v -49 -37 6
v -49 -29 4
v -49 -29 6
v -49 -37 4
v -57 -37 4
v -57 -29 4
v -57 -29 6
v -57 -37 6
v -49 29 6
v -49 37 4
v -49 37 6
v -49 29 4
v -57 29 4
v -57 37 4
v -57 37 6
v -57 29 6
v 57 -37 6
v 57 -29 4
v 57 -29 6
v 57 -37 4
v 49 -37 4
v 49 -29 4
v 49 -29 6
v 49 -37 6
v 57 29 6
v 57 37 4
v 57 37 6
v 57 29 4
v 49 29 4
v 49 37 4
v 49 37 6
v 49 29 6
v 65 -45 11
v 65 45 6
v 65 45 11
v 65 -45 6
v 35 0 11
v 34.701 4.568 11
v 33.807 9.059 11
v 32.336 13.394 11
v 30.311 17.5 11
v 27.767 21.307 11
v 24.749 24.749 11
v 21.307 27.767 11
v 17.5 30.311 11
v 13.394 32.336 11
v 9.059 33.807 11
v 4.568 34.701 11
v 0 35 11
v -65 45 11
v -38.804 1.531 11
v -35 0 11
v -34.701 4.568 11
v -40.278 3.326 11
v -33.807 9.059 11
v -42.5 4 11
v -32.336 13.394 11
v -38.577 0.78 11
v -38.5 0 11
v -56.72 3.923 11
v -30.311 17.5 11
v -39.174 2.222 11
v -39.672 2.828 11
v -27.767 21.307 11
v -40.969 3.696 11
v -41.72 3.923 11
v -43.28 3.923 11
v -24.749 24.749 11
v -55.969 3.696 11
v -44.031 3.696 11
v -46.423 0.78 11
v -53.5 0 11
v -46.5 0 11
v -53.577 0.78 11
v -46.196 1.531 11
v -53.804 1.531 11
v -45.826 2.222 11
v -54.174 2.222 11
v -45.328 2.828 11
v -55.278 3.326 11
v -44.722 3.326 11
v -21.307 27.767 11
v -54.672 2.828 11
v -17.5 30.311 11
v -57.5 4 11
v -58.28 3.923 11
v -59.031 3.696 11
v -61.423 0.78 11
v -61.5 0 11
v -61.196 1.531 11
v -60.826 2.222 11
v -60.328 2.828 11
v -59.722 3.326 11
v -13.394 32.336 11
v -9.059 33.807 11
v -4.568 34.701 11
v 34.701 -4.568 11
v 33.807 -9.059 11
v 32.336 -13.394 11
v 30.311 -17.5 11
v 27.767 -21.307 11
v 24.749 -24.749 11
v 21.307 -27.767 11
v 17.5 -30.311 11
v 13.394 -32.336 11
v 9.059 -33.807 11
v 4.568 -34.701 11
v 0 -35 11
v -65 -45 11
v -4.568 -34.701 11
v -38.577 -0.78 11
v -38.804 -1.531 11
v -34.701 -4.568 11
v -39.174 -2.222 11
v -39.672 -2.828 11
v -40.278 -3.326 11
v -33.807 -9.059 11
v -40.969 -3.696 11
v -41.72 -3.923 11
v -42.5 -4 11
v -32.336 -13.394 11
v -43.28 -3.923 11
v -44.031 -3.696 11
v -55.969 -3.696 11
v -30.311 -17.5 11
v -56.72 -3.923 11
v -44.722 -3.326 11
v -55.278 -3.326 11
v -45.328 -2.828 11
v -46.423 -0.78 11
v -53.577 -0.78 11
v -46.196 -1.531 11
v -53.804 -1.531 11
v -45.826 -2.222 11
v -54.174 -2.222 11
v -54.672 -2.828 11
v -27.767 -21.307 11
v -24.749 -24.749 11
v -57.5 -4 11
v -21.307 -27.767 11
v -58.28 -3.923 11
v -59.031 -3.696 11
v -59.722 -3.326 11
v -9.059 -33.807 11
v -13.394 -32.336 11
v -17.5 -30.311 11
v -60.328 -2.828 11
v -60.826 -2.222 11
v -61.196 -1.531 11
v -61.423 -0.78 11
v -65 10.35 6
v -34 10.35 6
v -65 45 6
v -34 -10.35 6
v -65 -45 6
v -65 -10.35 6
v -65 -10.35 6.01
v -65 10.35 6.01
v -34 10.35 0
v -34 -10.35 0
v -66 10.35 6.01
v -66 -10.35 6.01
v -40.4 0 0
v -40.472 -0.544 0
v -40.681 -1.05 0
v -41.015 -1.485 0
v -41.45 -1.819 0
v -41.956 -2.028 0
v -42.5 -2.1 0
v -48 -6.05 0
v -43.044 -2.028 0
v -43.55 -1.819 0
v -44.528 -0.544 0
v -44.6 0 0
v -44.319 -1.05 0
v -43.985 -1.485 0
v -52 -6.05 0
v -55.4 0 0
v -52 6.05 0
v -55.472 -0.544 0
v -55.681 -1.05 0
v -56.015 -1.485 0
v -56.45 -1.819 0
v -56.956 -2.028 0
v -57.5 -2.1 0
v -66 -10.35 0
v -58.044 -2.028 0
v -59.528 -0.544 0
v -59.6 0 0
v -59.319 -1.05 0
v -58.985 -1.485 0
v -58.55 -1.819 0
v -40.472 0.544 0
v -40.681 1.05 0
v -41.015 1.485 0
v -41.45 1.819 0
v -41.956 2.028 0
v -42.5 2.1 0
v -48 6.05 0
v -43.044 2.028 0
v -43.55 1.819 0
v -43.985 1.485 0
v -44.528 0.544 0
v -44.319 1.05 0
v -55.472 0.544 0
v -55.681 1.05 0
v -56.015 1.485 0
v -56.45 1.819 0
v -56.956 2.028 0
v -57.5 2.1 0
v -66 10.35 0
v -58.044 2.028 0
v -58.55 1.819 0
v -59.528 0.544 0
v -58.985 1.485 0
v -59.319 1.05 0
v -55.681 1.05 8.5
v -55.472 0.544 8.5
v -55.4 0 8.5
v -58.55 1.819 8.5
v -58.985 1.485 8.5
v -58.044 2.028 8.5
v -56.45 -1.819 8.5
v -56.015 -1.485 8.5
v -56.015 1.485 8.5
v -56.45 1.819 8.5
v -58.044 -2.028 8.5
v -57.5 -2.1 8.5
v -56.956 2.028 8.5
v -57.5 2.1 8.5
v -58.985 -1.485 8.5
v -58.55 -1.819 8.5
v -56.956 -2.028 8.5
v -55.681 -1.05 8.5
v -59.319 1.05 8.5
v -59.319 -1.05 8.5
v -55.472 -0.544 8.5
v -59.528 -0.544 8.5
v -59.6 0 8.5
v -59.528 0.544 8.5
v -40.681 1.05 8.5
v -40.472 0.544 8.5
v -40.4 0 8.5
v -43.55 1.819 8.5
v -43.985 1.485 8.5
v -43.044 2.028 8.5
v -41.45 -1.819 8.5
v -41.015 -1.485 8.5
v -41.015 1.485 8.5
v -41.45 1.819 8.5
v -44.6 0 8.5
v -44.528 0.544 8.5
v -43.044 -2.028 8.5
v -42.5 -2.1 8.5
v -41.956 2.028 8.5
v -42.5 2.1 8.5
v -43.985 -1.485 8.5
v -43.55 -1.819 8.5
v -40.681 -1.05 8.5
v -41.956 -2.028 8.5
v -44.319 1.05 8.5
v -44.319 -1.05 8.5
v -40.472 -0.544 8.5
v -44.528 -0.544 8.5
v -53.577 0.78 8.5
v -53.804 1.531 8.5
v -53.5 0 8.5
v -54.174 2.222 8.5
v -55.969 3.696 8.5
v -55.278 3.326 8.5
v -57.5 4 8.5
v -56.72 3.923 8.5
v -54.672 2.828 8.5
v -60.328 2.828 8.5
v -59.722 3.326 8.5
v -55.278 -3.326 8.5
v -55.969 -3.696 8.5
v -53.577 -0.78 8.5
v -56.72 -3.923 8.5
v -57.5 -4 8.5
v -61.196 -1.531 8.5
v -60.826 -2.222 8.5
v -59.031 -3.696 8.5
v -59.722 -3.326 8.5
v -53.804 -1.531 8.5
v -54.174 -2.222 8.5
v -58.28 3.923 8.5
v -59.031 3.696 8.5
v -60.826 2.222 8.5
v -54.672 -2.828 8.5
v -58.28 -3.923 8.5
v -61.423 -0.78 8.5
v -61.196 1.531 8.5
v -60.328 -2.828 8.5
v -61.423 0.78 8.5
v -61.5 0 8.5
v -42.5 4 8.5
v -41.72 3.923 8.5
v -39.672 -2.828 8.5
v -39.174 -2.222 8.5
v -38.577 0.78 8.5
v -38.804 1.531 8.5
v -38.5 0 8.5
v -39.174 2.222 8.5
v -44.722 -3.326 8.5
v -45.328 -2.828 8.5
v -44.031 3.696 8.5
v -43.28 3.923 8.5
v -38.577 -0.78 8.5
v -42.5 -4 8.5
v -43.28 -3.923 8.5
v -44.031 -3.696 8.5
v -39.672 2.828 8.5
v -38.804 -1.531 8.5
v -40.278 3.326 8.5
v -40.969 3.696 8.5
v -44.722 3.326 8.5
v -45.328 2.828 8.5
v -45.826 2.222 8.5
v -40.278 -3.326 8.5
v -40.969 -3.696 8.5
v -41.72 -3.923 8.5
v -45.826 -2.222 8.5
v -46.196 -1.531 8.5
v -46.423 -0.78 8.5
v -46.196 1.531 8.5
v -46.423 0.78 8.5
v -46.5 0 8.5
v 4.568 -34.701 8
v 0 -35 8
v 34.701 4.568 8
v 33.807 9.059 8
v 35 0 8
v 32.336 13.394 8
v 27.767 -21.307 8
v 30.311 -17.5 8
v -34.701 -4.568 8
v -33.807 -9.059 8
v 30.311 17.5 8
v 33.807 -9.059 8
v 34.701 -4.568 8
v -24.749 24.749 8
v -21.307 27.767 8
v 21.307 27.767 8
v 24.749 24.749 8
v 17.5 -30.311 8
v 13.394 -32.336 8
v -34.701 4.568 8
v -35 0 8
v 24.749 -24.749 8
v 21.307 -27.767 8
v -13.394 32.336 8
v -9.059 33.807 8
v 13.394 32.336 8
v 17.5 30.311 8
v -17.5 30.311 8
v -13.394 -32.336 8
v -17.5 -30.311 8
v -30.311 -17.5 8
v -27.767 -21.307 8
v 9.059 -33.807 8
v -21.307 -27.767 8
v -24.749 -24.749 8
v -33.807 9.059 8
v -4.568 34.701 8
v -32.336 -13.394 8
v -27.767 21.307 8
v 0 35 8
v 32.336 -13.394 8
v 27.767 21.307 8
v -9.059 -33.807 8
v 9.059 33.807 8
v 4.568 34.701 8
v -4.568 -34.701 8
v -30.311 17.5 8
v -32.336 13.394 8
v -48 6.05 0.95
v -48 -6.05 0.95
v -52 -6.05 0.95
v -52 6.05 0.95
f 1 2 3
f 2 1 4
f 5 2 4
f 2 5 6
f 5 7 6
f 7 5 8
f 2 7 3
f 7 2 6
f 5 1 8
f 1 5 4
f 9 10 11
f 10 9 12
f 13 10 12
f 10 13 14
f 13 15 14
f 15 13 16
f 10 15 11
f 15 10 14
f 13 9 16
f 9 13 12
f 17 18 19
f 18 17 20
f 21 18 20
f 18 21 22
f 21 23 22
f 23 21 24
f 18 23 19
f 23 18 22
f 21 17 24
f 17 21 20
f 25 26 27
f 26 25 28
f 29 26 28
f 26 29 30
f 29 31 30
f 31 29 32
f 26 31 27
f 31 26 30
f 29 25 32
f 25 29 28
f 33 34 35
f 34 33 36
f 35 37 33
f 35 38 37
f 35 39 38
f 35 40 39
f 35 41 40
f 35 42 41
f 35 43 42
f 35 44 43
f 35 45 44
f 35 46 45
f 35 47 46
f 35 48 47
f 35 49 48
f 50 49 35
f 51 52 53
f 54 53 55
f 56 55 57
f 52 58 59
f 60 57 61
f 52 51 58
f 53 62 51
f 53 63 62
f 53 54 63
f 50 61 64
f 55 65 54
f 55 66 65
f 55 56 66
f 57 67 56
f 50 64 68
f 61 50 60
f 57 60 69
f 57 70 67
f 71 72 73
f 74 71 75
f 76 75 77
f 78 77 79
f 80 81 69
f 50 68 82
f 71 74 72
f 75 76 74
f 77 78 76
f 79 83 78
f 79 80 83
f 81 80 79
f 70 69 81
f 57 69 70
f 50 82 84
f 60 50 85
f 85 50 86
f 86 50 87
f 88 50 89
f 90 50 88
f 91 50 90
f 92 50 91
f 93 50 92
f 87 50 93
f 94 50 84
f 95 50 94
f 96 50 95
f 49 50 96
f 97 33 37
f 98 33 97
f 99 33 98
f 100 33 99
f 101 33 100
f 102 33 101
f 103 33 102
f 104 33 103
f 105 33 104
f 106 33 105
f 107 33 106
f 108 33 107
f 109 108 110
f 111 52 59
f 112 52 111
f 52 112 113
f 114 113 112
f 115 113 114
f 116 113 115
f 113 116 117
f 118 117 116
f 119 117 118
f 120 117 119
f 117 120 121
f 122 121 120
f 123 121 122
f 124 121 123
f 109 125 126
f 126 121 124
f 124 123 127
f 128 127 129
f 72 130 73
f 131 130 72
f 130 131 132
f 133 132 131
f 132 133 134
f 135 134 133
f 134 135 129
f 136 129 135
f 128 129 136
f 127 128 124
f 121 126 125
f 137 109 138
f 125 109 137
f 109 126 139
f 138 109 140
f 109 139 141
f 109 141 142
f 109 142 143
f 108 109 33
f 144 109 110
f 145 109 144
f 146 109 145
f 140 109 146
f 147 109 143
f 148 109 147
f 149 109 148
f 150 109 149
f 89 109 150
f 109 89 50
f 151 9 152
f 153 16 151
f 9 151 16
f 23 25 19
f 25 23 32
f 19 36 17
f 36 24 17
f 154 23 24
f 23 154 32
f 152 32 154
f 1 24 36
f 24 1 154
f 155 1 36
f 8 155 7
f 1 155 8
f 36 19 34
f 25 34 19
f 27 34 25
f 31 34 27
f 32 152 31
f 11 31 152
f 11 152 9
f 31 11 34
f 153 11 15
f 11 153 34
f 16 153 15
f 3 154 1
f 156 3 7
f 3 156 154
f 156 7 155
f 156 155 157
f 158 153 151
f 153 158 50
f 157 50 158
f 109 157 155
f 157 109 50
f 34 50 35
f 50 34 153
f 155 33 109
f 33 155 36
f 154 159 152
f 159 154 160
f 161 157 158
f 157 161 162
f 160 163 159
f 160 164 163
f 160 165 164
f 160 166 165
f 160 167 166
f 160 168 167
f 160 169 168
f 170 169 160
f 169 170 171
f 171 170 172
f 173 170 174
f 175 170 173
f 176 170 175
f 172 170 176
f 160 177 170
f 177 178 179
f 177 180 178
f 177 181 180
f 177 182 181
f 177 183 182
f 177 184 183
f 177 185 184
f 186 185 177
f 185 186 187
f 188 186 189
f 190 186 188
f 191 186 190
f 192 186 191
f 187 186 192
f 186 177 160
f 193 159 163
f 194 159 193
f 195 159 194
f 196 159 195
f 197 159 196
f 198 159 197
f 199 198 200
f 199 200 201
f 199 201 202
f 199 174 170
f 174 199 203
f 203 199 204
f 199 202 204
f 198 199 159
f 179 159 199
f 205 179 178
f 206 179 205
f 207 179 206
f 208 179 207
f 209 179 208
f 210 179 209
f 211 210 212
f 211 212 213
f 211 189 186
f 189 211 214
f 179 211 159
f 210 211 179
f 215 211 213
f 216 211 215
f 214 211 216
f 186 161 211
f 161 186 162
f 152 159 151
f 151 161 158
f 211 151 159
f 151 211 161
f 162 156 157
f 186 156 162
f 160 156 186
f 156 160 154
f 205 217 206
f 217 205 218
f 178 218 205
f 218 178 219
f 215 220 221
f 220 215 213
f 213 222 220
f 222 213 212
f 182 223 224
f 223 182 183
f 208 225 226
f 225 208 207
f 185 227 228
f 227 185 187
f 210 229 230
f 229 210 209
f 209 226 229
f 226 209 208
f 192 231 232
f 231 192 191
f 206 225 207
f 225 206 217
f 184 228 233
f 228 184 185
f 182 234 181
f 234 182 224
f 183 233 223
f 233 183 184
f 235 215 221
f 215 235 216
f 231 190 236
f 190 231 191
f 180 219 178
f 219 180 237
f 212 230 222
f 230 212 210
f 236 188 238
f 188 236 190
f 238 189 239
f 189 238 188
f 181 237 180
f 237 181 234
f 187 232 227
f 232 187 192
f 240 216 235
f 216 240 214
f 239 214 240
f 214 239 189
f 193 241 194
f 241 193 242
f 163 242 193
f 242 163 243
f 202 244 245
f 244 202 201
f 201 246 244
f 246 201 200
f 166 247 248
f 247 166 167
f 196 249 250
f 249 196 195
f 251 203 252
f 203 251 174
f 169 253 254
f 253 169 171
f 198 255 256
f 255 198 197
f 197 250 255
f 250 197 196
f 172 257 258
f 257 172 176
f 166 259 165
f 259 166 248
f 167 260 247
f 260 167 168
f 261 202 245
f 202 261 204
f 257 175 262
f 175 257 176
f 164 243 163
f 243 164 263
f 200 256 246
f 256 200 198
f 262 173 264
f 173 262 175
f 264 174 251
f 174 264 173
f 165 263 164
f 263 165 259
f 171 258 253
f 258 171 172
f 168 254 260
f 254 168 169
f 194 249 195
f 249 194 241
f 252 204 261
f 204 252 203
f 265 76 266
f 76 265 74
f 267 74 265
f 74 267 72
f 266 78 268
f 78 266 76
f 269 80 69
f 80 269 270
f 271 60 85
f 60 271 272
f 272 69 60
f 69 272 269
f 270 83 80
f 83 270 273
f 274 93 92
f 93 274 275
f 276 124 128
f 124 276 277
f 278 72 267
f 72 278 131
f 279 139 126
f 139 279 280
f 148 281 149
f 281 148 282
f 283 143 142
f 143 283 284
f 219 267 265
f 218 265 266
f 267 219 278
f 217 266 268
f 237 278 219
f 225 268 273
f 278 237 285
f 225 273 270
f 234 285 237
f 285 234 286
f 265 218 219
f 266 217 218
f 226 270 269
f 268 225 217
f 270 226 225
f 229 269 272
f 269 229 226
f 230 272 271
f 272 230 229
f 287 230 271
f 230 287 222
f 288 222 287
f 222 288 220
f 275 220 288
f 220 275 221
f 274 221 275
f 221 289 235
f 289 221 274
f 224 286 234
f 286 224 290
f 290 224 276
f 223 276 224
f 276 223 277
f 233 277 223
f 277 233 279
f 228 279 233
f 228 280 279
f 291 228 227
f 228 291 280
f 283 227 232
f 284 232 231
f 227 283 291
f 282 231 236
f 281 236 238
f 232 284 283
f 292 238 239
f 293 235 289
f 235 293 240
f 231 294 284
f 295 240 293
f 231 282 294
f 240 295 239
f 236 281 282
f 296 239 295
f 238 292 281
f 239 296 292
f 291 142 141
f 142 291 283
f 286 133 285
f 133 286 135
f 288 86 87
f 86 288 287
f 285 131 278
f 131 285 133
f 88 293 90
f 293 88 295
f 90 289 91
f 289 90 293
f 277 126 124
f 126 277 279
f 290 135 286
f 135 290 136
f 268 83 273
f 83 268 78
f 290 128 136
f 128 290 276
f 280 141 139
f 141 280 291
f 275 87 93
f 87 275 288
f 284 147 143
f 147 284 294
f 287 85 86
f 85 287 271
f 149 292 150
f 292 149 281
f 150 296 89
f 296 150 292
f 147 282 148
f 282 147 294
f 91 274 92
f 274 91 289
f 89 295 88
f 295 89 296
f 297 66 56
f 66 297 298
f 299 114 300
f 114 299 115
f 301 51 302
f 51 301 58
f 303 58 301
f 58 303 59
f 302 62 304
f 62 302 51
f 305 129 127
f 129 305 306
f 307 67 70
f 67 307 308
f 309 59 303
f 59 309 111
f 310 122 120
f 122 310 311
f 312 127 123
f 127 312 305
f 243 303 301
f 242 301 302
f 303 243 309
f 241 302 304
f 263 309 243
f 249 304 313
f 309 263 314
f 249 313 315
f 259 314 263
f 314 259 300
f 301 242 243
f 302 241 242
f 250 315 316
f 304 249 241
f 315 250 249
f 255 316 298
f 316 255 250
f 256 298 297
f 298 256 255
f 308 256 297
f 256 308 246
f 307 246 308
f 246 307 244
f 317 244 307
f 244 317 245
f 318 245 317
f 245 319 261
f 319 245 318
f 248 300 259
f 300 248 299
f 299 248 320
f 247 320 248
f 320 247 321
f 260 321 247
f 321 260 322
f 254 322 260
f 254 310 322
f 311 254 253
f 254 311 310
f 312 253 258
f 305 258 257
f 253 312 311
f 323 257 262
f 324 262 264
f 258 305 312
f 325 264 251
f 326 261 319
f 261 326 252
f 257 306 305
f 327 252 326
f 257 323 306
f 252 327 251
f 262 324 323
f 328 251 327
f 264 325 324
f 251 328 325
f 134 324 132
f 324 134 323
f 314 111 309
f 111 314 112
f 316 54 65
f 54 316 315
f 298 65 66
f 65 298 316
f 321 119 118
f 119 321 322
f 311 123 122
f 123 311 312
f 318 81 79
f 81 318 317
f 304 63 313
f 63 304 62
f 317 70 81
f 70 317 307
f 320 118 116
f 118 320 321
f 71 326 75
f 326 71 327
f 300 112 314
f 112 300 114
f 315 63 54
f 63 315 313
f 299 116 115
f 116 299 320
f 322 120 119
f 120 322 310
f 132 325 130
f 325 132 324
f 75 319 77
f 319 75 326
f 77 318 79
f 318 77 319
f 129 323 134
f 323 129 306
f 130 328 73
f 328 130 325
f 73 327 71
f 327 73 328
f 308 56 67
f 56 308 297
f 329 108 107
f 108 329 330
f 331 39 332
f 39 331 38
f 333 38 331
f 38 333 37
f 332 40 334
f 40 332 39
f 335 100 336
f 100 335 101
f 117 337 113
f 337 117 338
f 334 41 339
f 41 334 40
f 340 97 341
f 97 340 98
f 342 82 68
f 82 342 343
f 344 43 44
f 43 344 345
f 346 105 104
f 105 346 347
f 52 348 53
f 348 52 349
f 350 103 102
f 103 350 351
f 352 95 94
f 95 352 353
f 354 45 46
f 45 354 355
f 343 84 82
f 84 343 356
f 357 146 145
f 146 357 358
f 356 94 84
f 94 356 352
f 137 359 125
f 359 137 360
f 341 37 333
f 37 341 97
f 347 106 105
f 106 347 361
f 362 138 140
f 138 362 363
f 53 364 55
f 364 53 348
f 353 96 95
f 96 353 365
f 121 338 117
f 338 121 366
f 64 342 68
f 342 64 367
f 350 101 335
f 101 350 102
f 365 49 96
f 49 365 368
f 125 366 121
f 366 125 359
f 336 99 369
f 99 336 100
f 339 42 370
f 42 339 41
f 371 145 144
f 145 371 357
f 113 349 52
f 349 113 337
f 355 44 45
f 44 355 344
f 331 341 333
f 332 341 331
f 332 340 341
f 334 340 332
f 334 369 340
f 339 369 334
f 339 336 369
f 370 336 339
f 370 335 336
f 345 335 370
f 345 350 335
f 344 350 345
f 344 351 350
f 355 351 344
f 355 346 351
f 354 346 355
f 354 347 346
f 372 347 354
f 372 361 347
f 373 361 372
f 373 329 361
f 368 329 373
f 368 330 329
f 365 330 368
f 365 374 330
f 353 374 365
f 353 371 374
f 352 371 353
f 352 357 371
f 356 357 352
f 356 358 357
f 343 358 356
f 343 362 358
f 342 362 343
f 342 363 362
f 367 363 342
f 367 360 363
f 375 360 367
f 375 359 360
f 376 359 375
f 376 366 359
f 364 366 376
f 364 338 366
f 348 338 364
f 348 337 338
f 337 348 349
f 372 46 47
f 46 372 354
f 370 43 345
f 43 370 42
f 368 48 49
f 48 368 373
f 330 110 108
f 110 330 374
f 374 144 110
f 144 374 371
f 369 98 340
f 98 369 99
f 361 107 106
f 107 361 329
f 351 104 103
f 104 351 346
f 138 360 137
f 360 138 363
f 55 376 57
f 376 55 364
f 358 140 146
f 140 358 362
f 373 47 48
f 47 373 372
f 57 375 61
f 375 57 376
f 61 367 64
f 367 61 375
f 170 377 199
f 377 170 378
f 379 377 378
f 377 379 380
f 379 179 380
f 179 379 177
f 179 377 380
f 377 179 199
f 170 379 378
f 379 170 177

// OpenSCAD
// file: lib/constants.scad
// ============================================================================
// DIY Supplement Dispenser – shared dimensions (Phase 1 v0.2)
// Source of truth: docs/PHASE1_DESIGN_HANDOFF.md (geometry locks)
// Units: millimetres.
//
// v0.2 stack-up fix:
//   Coupler lives in motor-end bore zone; flights shorter so free end
//   can close with a root-diameter bushing. Assemble auger from free end.
// ============================================================================

// ----- Material / print -----
WALL_T           = 2.2;
CLEARANCE_LOOSE  = 0.4;
CLEARANCE_SLIDE  = 0.25;
CLEARANCE_PRESS  = 0.05;

// ----- Hopper -----
HOPPER_TOP_ID      = 90;
HOPPER_BOT_ID      = 22;
HOPPER_ANGLE_DEG   = 65;
HOPPER_CYL_H       = 40;
HOPPER_WALL        = 2.2;
HOPPER_FLANGE_W    = 7;
HOPPER_FLANGE_T    = 3.5;
HOPPER_BOLT_CIRCLE = 100;
HOPPER_M3_D        = 3.3;
// Cone height: (45 - 11) * tan(65°) ≈ 72.9 mm
HOPPER_CONE_H      = (HOPPER_TOP_ID/2 - HOPPER_BOT_ID/2) * tan(HOPPER_ANGLE_DEG);
// Approximate internal volume (ml): frustum + cylinder ≈ 200 + 254 ≈ 455 ml
HOPPER_SPIGOT_H    = 8;
HOPPER_SPIGOT_OD   = HOPPER_BOT_ID + 2*HOPPER_WALL;
HOPPER_BOT_FLANGE_OD = 42;
HOPPER_BOT_FLANGE_T  = 3.5;
HOPPER_BOT_BOLT_CIRCLE = 34;

// ----- Auger screw (stack-up: coupler zone + flights + tip ≤ barrel) -----
AUGER_OD       = 16.8;
AUGER_ROOT_D   = 8.5;
AUGER_PITCH    = 11;
// Active flights shorter so coupler zone + tip fit in 70 mm barrel
AUGER_LENGTH   = 48;    // was 70 — did not fit with coupler
AUGER_FLIGHT_T = 1.6;
AUGER_SHAFT_D  = 5.0;
AUGER_COUPLER_L = 14;
AUGER_COUPLER_OD = 12;
AUGER_SETSCREW_D = 3.0;
AUGER_TIP_L    = 6;
// Coupler shoulder after coupler body
AUGER_SHOULDER_L = 2.5;

// ----- Barrel / housing -----
BARREL_ID      = 18.0;
BARREL_OD      = BARREL_ID + 2*WALL_T;
BARREL_LENGTH  = 70;
// Motor-end coupler pocket (enlarged bore so 12 mm coupler seats inside barrel)
COUPLER_BORE_D = AUGER_COUPLER_OD + 1.0;  // ~13 mm
COUPLER_ZONE_L = AUGER_COUPLER_L + AUGER_SHOULDER_L + 1; // ~17.5 mm
// Free-end bushing (root + clearance) — CLOSES powder path
BUSHING_ID     = AUGER_ROOT_D + 0.9;  // ~9.4 mm — tip only, not full barrel ID
BUSHING_DEPTH  = 6;
INLET_ID       = HOPPER_BOT_ID;
INLET_BORE_H   = 12;
OUTLET_ID      = 16;
OUTLET_L       = 12;
OUTLET_WALL    = 2.0;
// Side access for M3 set-screw on coupler (radial hole in housing)
SETSCREW_ACCESS_D = 4.0;

// ----- NEMA17 -----
NEMA17_FACE        = 42;
NEMA17_HOLE_SPACE  = 31;
NEMA17_HOLE_D      = 3.3;
NEMA17_PILOT_D     = 22.5;
NEMA17_PLATE_T     = 4.0;
// Shaft pass-through only (coupler does NOT pass the plate)
NEMA17_SHAFT_CLEAR = 6.0;

// ----- Vibration motor -----
VIBE_MOTOR_D   = 12;
VIBE_MOTOR_H   = 3.2;
VIBE_WIRE_W    = 3.5;
VIBE_WIRE_H    = 1.5;

// ----- Load cell / scale platform -----
// Common bar cell ~80×12.7; some Amazon kits are 76×13.5 — verify yours
LOADCELL_L     = 80;
LOADCELL_W     = 12.7;
LOADCELL_H     = 12.7;
LOADCELL_HOLE_SPACE = 15;
LOADCELL_HOLE_D     = 4.2;
CUP_RECESS_D   = 70;
CUP_RECESS_H   = 3;

// ----- Test stand -----
STAND_OUTLET_CLEARANCE = 55;
STAND_FOOT_T   = 4;
STAND_POST_W   = 14;

// ----- Lid -----
LID_LIP_H      = 6;
LID_LIP_CLEAR  = 0.35;

PART_VERSION   = "v02";
// main file
// ============================================================================
// scale_platform_v02 – cup recess fully clear of M4 counterbores
// Live-end boss pushed further −X so Ø8 counterbores stay outside Ø70 recess.
// ============================================================================

include <lib/constants.scad>

cell_w        = LOADCELL_W;
hole_space    = LOADCELL_HOLE_SPACE;
hole_d        = LOADCELL_HOLE_D;
deck_x        = 130;
deck_y        = 90;
deck_t        = 5;
cup_d         = CUP_RECESS_D;
cup_recess_h  = CUP_RECESS_H;
boss_x        = 32;
boss_y        = cell_w + 8;
boss_h        = 6;
m4_cbore_d    = 8;
m4_cbore_h    = 2.5;
// Outer edge of counterbore must be outside cup: |boss_cx| - hole_space/2 - cbore_r > cup_r
// |boss_cx| > 35 + 7.5 + 4 + 2 = 48.5 → use 50
boss_cx       = -50;

$fn = 48;

module cell_live_holes(h = 20) {
    for (dx = [-hole_space/2, hole_space/2])
        translate([dx, 0, 0])
            cylinder(d = hole_d, h = h, $fn = 24);
}

module scale_platform() {
    difference() {
        union() {
            translate([-deck_x/2, -deck_y/2, boss_h])
                cube([deck_x, deck_y, deck_t]);
            translate([boss_cx - boss_x/2, -boss_y/2, 0])
                cube([boss_x, boss_y, boss_h + 0.01]);
            // Overload stop pads
            for (sx = [-1, 1], sy = [-1, 1])
                translate([
                    sx * (deck_x/2 - 12) - 4,
                    sy * (deck_y/2 - 12) - 4,
                    boss_h - 2
                ])
                    cube([8, 8, 2.05]);
        }
        translate([0, 0, boss_h + deck_t - cup_recess_h])
            cylinder(d = cup_d, h = cup_recess_h + 0.15);
        translate([boss_cx, 0, -0.2])
            cell_live_holes(h = boss_h + deck_t + 0.5);
        translate([boss_cx, 0, boss_h + deck_t - m4_cbore_h])
            for (dx = [-hole_space/2, hole_space/2])
                translate([dx, 0, 0])
                    cylinder(d = m4_cbore_d, h = m4_cbore_h + 0.2, $fn = 32);
        // Flex relief
        translate([boss_cx - 2, -cell_w/2 + 0.3, -0.05])
            cube([4, cell_w - 0.6, 1.0]);
    }
}

scale_platform();

echo("boss_cx =", boss_cx, " cup R =", cup_d/2);
echo("cbore outer |x| min =", abs(boss_cx) - hole_space/2 - m4_cbore_d/2);
